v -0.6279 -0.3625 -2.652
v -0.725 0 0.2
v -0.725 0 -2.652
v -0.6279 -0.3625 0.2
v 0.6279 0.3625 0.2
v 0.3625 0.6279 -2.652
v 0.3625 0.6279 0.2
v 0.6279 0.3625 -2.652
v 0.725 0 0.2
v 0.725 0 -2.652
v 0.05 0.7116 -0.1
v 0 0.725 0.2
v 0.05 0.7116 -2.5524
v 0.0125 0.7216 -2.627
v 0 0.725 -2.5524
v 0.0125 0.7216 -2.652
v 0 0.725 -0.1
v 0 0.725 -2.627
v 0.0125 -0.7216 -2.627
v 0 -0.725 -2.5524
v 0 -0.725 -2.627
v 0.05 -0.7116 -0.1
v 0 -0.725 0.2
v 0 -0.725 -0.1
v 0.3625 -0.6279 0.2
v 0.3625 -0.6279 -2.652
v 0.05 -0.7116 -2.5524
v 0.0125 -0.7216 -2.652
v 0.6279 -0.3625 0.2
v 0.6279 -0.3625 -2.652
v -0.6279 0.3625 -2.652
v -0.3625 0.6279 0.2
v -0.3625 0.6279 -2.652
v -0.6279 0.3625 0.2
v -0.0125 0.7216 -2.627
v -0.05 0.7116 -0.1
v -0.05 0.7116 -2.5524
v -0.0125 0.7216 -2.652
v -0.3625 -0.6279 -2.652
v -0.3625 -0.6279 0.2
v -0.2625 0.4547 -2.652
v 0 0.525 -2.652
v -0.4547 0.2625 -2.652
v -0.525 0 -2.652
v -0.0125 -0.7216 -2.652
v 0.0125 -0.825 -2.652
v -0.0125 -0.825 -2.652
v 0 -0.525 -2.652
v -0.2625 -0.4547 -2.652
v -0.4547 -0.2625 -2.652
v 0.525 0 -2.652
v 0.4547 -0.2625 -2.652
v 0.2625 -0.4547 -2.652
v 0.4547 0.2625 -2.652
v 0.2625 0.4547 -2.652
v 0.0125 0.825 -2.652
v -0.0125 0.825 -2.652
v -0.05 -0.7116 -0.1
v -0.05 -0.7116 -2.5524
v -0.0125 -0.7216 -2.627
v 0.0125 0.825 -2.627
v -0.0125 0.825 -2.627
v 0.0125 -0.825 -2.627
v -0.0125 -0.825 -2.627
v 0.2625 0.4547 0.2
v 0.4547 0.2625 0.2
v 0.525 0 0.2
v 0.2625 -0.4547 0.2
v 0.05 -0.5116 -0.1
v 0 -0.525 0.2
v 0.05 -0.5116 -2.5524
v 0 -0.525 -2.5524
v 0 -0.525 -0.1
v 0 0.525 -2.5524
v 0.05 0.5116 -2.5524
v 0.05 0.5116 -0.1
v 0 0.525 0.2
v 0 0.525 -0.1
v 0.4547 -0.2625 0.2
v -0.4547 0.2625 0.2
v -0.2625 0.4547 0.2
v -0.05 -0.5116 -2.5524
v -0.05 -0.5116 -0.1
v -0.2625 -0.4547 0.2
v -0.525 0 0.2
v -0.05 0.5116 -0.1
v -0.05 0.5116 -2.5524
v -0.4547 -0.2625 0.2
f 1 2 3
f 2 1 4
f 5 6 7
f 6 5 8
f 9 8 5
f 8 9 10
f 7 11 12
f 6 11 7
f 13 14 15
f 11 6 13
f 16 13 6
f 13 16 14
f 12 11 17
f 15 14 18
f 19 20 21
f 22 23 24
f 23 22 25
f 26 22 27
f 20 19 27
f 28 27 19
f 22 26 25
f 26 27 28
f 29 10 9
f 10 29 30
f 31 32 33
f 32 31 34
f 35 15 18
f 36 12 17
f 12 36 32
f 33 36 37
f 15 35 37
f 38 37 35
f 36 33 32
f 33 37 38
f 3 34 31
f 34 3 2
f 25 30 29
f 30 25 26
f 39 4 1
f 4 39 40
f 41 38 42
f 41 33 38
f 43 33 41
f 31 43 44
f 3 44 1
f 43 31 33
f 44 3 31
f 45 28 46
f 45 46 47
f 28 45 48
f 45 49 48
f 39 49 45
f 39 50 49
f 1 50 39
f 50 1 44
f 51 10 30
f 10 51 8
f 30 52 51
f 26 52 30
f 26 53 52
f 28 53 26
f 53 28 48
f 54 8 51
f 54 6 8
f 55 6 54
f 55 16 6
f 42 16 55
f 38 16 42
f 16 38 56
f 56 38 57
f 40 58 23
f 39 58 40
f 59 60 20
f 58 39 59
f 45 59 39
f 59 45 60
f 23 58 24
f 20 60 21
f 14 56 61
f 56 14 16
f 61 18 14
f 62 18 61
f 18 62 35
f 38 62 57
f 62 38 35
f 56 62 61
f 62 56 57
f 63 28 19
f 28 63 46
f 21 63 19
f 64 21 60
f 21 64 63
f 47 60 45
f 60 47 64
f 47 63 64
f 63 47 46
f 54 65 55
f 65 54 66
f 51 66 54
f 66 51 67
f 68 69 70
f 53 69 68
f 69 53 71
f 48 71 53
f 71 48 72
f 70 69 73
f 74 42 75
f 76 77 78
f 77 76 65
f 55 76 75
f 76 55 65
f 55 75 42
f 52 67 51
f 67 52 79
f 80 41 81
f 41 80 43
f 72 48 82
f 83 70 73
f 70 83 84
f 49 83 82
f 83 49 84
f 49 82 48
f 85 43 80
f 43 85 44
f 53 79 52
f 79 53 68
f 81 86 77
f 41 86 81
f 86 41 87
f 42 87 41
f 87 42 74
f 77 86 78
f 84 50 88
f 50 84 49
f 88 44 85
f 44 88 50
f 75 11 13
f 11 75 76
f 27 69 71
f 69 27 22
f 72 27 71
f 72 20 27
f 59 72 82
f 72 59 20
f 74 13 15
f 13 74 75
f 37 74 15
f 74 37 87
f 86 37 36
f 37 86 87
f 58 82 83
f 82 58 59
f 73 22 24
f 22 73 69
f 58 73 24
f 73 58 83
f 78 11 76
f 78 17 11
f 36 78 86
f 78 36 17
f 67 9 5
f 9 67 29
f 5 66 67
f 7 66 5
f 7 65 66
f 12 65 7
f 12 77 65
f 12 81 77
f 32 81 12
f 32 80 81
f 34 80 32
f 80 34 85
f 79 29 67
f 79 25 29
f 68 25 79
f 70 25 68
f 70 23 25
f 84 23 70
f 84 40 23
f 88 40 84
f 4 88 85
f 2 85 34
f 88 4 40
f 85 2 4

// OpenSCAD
tolerance=0.075;
hole_radius=0.05;
grid_hole_radius=0.05;
outer_radius=1;
thickness=0.2;
hole_attach_height=0.05;
compressed_height=3.3134;
extended_height=5.8654;
next_hole_radius=0.05;
next_hole_attach_height=0.05;
next_inner=0.8;
hole_twist=0.0017;
//other params
eps = tolerance/100;
rail_attach_height = grid_hole_radius + hole_attach_height;
inner_radius = outer_radius - thickness;
rail_attach_width = rail_attach_height;
fn = 12;
fnh = 6;

module angled_cylinder(angle_deg_y, _h, _r, angle_deg_x = 0) {
    rotate([angle_deg_x, angle_deg_y, 0]) { // Rotate the cylinder 
            cylinder(h = _h, r = _r, center = true, $fn = fnh);
        }
}

module top_joint() {
    total_height = extended_height - compressed_height + rail_attach_height;
    difference() {
        union() {
            //outer cylinder
            cylinder(h=extended_height - compressed_height + rail_attach_height, r = inner_radius - tolerance, $fn = fn);
            
            //rail attachments
            translate([-(rail_attach_width - tolerance)/2,inner_radius - tolerance - thickness/2, 0])
            cube([rail_attach_width - tolerance, thickness, rail_attach_height - tolerance]);
            
            translate([-(rail_attach_width - tolerance)/2,-inner_radius + tolerance - thickness/2, 0])
            cube([rail_attach_width - tolerance, thickness, rail_attach_height - tolerance]);
            
        }
        //shell out inner cylinder
        translate([0,0,-eps/2])
        cylinder(h=extended_height - compressed_height + rail_attach_height + eps, r= inner_radius - tolerance - thickness, $fn = fn);
        
        translate([0,0,rail_attach_height + (extended_height - compressed_height)/2])
        cube([grid_hole_radius*2, inner_radius*2 + eps, extended_height - compressed_height + eps],center=true);
    }
    
    //to tie strings
//    difference() {
//        union() {
//            //loop for strings
//            translate([0, inner_radius - tolerance - grid_hole_radius - hole_attach_height,0])
//            cylinder(h=rail_attach_height - tolerance,r=grid_hole_radius + hole_attach_height,$fn=fnh);
//            
//            translate([0, -inner_radius + tolerance + grid_hole_radius + hole_attach_height,0])
//            cylinder(h=rail_attach_height - tolerance,r=grid_hole_radius + hole_attach_height,$fn=fnh);
//        }
//        
//        translate([0,0,-eps/2]) {
//            //hole for string loops
//        translate([0, inner_radius - tolerance - grid_hole_radius - hole_attach_height,0])
//            cylinder(h=rail_attach_height-tolerance + eps,r=grid_hole_radius,$fn=fnh);
//            
//        translate([0, -inner_radius + tolerance + grid_hole_radius + hole_attach_height,0])
//        cylinder(h=rail_attach_height - tolerance + eps,r=grid_hole_radius,$fn=fnh);
//        }
//    }
    
    
    //attachment segment
    attach_thickness = hole_attach_height;
    difference() {
        union() {
            //attachment for smaller cylinder
            translate([0,0,-attach_thickness*2 + total_height])
            cylinder(h=attach_thickness*2, r=inner_radius - tolerance, $fn=fn);
            translate([0,0,-attach_thickness*2 + total_height])
            cylinder(h=attach_thickness*2, r1=inner_radius - tolerance, r2=next_inner - tolerance - thickness, $fn=fn);
            
            translate([0,0,total_height])
            //small cylinder
            cylinder(h=next_hole_radius*2 + next_hole_attach_height * 2, r = next_inner - tolerance, $fn=fn);
        }
        
        //shelling
        translate([0,0, -attach_thickness*2 - eps/2 + total_height])
        cylinder(h=next_hole_radius*2 + next_hole_attach_height * 2 + attach_thickness*2 + eps, r = min(inner_radius, next_inner - tolerance - thickness), $fn=fn);
        
        //holes for screws
//        translate([0,0,next_hole_attach_height + next_hole_radius + total_height]) {
//            angled_cylinder(0, (next_inner + thickness + eps) * 2,  next_hole_radius, 90);
//            angled_cylinder(90, (next_inner + thickness + eps) * 2, next_hole_radius, 0);
//        }
    }
 
}

translate([0,0,-extended_height+compressed_height-rail_attach_height])
top_joint();
